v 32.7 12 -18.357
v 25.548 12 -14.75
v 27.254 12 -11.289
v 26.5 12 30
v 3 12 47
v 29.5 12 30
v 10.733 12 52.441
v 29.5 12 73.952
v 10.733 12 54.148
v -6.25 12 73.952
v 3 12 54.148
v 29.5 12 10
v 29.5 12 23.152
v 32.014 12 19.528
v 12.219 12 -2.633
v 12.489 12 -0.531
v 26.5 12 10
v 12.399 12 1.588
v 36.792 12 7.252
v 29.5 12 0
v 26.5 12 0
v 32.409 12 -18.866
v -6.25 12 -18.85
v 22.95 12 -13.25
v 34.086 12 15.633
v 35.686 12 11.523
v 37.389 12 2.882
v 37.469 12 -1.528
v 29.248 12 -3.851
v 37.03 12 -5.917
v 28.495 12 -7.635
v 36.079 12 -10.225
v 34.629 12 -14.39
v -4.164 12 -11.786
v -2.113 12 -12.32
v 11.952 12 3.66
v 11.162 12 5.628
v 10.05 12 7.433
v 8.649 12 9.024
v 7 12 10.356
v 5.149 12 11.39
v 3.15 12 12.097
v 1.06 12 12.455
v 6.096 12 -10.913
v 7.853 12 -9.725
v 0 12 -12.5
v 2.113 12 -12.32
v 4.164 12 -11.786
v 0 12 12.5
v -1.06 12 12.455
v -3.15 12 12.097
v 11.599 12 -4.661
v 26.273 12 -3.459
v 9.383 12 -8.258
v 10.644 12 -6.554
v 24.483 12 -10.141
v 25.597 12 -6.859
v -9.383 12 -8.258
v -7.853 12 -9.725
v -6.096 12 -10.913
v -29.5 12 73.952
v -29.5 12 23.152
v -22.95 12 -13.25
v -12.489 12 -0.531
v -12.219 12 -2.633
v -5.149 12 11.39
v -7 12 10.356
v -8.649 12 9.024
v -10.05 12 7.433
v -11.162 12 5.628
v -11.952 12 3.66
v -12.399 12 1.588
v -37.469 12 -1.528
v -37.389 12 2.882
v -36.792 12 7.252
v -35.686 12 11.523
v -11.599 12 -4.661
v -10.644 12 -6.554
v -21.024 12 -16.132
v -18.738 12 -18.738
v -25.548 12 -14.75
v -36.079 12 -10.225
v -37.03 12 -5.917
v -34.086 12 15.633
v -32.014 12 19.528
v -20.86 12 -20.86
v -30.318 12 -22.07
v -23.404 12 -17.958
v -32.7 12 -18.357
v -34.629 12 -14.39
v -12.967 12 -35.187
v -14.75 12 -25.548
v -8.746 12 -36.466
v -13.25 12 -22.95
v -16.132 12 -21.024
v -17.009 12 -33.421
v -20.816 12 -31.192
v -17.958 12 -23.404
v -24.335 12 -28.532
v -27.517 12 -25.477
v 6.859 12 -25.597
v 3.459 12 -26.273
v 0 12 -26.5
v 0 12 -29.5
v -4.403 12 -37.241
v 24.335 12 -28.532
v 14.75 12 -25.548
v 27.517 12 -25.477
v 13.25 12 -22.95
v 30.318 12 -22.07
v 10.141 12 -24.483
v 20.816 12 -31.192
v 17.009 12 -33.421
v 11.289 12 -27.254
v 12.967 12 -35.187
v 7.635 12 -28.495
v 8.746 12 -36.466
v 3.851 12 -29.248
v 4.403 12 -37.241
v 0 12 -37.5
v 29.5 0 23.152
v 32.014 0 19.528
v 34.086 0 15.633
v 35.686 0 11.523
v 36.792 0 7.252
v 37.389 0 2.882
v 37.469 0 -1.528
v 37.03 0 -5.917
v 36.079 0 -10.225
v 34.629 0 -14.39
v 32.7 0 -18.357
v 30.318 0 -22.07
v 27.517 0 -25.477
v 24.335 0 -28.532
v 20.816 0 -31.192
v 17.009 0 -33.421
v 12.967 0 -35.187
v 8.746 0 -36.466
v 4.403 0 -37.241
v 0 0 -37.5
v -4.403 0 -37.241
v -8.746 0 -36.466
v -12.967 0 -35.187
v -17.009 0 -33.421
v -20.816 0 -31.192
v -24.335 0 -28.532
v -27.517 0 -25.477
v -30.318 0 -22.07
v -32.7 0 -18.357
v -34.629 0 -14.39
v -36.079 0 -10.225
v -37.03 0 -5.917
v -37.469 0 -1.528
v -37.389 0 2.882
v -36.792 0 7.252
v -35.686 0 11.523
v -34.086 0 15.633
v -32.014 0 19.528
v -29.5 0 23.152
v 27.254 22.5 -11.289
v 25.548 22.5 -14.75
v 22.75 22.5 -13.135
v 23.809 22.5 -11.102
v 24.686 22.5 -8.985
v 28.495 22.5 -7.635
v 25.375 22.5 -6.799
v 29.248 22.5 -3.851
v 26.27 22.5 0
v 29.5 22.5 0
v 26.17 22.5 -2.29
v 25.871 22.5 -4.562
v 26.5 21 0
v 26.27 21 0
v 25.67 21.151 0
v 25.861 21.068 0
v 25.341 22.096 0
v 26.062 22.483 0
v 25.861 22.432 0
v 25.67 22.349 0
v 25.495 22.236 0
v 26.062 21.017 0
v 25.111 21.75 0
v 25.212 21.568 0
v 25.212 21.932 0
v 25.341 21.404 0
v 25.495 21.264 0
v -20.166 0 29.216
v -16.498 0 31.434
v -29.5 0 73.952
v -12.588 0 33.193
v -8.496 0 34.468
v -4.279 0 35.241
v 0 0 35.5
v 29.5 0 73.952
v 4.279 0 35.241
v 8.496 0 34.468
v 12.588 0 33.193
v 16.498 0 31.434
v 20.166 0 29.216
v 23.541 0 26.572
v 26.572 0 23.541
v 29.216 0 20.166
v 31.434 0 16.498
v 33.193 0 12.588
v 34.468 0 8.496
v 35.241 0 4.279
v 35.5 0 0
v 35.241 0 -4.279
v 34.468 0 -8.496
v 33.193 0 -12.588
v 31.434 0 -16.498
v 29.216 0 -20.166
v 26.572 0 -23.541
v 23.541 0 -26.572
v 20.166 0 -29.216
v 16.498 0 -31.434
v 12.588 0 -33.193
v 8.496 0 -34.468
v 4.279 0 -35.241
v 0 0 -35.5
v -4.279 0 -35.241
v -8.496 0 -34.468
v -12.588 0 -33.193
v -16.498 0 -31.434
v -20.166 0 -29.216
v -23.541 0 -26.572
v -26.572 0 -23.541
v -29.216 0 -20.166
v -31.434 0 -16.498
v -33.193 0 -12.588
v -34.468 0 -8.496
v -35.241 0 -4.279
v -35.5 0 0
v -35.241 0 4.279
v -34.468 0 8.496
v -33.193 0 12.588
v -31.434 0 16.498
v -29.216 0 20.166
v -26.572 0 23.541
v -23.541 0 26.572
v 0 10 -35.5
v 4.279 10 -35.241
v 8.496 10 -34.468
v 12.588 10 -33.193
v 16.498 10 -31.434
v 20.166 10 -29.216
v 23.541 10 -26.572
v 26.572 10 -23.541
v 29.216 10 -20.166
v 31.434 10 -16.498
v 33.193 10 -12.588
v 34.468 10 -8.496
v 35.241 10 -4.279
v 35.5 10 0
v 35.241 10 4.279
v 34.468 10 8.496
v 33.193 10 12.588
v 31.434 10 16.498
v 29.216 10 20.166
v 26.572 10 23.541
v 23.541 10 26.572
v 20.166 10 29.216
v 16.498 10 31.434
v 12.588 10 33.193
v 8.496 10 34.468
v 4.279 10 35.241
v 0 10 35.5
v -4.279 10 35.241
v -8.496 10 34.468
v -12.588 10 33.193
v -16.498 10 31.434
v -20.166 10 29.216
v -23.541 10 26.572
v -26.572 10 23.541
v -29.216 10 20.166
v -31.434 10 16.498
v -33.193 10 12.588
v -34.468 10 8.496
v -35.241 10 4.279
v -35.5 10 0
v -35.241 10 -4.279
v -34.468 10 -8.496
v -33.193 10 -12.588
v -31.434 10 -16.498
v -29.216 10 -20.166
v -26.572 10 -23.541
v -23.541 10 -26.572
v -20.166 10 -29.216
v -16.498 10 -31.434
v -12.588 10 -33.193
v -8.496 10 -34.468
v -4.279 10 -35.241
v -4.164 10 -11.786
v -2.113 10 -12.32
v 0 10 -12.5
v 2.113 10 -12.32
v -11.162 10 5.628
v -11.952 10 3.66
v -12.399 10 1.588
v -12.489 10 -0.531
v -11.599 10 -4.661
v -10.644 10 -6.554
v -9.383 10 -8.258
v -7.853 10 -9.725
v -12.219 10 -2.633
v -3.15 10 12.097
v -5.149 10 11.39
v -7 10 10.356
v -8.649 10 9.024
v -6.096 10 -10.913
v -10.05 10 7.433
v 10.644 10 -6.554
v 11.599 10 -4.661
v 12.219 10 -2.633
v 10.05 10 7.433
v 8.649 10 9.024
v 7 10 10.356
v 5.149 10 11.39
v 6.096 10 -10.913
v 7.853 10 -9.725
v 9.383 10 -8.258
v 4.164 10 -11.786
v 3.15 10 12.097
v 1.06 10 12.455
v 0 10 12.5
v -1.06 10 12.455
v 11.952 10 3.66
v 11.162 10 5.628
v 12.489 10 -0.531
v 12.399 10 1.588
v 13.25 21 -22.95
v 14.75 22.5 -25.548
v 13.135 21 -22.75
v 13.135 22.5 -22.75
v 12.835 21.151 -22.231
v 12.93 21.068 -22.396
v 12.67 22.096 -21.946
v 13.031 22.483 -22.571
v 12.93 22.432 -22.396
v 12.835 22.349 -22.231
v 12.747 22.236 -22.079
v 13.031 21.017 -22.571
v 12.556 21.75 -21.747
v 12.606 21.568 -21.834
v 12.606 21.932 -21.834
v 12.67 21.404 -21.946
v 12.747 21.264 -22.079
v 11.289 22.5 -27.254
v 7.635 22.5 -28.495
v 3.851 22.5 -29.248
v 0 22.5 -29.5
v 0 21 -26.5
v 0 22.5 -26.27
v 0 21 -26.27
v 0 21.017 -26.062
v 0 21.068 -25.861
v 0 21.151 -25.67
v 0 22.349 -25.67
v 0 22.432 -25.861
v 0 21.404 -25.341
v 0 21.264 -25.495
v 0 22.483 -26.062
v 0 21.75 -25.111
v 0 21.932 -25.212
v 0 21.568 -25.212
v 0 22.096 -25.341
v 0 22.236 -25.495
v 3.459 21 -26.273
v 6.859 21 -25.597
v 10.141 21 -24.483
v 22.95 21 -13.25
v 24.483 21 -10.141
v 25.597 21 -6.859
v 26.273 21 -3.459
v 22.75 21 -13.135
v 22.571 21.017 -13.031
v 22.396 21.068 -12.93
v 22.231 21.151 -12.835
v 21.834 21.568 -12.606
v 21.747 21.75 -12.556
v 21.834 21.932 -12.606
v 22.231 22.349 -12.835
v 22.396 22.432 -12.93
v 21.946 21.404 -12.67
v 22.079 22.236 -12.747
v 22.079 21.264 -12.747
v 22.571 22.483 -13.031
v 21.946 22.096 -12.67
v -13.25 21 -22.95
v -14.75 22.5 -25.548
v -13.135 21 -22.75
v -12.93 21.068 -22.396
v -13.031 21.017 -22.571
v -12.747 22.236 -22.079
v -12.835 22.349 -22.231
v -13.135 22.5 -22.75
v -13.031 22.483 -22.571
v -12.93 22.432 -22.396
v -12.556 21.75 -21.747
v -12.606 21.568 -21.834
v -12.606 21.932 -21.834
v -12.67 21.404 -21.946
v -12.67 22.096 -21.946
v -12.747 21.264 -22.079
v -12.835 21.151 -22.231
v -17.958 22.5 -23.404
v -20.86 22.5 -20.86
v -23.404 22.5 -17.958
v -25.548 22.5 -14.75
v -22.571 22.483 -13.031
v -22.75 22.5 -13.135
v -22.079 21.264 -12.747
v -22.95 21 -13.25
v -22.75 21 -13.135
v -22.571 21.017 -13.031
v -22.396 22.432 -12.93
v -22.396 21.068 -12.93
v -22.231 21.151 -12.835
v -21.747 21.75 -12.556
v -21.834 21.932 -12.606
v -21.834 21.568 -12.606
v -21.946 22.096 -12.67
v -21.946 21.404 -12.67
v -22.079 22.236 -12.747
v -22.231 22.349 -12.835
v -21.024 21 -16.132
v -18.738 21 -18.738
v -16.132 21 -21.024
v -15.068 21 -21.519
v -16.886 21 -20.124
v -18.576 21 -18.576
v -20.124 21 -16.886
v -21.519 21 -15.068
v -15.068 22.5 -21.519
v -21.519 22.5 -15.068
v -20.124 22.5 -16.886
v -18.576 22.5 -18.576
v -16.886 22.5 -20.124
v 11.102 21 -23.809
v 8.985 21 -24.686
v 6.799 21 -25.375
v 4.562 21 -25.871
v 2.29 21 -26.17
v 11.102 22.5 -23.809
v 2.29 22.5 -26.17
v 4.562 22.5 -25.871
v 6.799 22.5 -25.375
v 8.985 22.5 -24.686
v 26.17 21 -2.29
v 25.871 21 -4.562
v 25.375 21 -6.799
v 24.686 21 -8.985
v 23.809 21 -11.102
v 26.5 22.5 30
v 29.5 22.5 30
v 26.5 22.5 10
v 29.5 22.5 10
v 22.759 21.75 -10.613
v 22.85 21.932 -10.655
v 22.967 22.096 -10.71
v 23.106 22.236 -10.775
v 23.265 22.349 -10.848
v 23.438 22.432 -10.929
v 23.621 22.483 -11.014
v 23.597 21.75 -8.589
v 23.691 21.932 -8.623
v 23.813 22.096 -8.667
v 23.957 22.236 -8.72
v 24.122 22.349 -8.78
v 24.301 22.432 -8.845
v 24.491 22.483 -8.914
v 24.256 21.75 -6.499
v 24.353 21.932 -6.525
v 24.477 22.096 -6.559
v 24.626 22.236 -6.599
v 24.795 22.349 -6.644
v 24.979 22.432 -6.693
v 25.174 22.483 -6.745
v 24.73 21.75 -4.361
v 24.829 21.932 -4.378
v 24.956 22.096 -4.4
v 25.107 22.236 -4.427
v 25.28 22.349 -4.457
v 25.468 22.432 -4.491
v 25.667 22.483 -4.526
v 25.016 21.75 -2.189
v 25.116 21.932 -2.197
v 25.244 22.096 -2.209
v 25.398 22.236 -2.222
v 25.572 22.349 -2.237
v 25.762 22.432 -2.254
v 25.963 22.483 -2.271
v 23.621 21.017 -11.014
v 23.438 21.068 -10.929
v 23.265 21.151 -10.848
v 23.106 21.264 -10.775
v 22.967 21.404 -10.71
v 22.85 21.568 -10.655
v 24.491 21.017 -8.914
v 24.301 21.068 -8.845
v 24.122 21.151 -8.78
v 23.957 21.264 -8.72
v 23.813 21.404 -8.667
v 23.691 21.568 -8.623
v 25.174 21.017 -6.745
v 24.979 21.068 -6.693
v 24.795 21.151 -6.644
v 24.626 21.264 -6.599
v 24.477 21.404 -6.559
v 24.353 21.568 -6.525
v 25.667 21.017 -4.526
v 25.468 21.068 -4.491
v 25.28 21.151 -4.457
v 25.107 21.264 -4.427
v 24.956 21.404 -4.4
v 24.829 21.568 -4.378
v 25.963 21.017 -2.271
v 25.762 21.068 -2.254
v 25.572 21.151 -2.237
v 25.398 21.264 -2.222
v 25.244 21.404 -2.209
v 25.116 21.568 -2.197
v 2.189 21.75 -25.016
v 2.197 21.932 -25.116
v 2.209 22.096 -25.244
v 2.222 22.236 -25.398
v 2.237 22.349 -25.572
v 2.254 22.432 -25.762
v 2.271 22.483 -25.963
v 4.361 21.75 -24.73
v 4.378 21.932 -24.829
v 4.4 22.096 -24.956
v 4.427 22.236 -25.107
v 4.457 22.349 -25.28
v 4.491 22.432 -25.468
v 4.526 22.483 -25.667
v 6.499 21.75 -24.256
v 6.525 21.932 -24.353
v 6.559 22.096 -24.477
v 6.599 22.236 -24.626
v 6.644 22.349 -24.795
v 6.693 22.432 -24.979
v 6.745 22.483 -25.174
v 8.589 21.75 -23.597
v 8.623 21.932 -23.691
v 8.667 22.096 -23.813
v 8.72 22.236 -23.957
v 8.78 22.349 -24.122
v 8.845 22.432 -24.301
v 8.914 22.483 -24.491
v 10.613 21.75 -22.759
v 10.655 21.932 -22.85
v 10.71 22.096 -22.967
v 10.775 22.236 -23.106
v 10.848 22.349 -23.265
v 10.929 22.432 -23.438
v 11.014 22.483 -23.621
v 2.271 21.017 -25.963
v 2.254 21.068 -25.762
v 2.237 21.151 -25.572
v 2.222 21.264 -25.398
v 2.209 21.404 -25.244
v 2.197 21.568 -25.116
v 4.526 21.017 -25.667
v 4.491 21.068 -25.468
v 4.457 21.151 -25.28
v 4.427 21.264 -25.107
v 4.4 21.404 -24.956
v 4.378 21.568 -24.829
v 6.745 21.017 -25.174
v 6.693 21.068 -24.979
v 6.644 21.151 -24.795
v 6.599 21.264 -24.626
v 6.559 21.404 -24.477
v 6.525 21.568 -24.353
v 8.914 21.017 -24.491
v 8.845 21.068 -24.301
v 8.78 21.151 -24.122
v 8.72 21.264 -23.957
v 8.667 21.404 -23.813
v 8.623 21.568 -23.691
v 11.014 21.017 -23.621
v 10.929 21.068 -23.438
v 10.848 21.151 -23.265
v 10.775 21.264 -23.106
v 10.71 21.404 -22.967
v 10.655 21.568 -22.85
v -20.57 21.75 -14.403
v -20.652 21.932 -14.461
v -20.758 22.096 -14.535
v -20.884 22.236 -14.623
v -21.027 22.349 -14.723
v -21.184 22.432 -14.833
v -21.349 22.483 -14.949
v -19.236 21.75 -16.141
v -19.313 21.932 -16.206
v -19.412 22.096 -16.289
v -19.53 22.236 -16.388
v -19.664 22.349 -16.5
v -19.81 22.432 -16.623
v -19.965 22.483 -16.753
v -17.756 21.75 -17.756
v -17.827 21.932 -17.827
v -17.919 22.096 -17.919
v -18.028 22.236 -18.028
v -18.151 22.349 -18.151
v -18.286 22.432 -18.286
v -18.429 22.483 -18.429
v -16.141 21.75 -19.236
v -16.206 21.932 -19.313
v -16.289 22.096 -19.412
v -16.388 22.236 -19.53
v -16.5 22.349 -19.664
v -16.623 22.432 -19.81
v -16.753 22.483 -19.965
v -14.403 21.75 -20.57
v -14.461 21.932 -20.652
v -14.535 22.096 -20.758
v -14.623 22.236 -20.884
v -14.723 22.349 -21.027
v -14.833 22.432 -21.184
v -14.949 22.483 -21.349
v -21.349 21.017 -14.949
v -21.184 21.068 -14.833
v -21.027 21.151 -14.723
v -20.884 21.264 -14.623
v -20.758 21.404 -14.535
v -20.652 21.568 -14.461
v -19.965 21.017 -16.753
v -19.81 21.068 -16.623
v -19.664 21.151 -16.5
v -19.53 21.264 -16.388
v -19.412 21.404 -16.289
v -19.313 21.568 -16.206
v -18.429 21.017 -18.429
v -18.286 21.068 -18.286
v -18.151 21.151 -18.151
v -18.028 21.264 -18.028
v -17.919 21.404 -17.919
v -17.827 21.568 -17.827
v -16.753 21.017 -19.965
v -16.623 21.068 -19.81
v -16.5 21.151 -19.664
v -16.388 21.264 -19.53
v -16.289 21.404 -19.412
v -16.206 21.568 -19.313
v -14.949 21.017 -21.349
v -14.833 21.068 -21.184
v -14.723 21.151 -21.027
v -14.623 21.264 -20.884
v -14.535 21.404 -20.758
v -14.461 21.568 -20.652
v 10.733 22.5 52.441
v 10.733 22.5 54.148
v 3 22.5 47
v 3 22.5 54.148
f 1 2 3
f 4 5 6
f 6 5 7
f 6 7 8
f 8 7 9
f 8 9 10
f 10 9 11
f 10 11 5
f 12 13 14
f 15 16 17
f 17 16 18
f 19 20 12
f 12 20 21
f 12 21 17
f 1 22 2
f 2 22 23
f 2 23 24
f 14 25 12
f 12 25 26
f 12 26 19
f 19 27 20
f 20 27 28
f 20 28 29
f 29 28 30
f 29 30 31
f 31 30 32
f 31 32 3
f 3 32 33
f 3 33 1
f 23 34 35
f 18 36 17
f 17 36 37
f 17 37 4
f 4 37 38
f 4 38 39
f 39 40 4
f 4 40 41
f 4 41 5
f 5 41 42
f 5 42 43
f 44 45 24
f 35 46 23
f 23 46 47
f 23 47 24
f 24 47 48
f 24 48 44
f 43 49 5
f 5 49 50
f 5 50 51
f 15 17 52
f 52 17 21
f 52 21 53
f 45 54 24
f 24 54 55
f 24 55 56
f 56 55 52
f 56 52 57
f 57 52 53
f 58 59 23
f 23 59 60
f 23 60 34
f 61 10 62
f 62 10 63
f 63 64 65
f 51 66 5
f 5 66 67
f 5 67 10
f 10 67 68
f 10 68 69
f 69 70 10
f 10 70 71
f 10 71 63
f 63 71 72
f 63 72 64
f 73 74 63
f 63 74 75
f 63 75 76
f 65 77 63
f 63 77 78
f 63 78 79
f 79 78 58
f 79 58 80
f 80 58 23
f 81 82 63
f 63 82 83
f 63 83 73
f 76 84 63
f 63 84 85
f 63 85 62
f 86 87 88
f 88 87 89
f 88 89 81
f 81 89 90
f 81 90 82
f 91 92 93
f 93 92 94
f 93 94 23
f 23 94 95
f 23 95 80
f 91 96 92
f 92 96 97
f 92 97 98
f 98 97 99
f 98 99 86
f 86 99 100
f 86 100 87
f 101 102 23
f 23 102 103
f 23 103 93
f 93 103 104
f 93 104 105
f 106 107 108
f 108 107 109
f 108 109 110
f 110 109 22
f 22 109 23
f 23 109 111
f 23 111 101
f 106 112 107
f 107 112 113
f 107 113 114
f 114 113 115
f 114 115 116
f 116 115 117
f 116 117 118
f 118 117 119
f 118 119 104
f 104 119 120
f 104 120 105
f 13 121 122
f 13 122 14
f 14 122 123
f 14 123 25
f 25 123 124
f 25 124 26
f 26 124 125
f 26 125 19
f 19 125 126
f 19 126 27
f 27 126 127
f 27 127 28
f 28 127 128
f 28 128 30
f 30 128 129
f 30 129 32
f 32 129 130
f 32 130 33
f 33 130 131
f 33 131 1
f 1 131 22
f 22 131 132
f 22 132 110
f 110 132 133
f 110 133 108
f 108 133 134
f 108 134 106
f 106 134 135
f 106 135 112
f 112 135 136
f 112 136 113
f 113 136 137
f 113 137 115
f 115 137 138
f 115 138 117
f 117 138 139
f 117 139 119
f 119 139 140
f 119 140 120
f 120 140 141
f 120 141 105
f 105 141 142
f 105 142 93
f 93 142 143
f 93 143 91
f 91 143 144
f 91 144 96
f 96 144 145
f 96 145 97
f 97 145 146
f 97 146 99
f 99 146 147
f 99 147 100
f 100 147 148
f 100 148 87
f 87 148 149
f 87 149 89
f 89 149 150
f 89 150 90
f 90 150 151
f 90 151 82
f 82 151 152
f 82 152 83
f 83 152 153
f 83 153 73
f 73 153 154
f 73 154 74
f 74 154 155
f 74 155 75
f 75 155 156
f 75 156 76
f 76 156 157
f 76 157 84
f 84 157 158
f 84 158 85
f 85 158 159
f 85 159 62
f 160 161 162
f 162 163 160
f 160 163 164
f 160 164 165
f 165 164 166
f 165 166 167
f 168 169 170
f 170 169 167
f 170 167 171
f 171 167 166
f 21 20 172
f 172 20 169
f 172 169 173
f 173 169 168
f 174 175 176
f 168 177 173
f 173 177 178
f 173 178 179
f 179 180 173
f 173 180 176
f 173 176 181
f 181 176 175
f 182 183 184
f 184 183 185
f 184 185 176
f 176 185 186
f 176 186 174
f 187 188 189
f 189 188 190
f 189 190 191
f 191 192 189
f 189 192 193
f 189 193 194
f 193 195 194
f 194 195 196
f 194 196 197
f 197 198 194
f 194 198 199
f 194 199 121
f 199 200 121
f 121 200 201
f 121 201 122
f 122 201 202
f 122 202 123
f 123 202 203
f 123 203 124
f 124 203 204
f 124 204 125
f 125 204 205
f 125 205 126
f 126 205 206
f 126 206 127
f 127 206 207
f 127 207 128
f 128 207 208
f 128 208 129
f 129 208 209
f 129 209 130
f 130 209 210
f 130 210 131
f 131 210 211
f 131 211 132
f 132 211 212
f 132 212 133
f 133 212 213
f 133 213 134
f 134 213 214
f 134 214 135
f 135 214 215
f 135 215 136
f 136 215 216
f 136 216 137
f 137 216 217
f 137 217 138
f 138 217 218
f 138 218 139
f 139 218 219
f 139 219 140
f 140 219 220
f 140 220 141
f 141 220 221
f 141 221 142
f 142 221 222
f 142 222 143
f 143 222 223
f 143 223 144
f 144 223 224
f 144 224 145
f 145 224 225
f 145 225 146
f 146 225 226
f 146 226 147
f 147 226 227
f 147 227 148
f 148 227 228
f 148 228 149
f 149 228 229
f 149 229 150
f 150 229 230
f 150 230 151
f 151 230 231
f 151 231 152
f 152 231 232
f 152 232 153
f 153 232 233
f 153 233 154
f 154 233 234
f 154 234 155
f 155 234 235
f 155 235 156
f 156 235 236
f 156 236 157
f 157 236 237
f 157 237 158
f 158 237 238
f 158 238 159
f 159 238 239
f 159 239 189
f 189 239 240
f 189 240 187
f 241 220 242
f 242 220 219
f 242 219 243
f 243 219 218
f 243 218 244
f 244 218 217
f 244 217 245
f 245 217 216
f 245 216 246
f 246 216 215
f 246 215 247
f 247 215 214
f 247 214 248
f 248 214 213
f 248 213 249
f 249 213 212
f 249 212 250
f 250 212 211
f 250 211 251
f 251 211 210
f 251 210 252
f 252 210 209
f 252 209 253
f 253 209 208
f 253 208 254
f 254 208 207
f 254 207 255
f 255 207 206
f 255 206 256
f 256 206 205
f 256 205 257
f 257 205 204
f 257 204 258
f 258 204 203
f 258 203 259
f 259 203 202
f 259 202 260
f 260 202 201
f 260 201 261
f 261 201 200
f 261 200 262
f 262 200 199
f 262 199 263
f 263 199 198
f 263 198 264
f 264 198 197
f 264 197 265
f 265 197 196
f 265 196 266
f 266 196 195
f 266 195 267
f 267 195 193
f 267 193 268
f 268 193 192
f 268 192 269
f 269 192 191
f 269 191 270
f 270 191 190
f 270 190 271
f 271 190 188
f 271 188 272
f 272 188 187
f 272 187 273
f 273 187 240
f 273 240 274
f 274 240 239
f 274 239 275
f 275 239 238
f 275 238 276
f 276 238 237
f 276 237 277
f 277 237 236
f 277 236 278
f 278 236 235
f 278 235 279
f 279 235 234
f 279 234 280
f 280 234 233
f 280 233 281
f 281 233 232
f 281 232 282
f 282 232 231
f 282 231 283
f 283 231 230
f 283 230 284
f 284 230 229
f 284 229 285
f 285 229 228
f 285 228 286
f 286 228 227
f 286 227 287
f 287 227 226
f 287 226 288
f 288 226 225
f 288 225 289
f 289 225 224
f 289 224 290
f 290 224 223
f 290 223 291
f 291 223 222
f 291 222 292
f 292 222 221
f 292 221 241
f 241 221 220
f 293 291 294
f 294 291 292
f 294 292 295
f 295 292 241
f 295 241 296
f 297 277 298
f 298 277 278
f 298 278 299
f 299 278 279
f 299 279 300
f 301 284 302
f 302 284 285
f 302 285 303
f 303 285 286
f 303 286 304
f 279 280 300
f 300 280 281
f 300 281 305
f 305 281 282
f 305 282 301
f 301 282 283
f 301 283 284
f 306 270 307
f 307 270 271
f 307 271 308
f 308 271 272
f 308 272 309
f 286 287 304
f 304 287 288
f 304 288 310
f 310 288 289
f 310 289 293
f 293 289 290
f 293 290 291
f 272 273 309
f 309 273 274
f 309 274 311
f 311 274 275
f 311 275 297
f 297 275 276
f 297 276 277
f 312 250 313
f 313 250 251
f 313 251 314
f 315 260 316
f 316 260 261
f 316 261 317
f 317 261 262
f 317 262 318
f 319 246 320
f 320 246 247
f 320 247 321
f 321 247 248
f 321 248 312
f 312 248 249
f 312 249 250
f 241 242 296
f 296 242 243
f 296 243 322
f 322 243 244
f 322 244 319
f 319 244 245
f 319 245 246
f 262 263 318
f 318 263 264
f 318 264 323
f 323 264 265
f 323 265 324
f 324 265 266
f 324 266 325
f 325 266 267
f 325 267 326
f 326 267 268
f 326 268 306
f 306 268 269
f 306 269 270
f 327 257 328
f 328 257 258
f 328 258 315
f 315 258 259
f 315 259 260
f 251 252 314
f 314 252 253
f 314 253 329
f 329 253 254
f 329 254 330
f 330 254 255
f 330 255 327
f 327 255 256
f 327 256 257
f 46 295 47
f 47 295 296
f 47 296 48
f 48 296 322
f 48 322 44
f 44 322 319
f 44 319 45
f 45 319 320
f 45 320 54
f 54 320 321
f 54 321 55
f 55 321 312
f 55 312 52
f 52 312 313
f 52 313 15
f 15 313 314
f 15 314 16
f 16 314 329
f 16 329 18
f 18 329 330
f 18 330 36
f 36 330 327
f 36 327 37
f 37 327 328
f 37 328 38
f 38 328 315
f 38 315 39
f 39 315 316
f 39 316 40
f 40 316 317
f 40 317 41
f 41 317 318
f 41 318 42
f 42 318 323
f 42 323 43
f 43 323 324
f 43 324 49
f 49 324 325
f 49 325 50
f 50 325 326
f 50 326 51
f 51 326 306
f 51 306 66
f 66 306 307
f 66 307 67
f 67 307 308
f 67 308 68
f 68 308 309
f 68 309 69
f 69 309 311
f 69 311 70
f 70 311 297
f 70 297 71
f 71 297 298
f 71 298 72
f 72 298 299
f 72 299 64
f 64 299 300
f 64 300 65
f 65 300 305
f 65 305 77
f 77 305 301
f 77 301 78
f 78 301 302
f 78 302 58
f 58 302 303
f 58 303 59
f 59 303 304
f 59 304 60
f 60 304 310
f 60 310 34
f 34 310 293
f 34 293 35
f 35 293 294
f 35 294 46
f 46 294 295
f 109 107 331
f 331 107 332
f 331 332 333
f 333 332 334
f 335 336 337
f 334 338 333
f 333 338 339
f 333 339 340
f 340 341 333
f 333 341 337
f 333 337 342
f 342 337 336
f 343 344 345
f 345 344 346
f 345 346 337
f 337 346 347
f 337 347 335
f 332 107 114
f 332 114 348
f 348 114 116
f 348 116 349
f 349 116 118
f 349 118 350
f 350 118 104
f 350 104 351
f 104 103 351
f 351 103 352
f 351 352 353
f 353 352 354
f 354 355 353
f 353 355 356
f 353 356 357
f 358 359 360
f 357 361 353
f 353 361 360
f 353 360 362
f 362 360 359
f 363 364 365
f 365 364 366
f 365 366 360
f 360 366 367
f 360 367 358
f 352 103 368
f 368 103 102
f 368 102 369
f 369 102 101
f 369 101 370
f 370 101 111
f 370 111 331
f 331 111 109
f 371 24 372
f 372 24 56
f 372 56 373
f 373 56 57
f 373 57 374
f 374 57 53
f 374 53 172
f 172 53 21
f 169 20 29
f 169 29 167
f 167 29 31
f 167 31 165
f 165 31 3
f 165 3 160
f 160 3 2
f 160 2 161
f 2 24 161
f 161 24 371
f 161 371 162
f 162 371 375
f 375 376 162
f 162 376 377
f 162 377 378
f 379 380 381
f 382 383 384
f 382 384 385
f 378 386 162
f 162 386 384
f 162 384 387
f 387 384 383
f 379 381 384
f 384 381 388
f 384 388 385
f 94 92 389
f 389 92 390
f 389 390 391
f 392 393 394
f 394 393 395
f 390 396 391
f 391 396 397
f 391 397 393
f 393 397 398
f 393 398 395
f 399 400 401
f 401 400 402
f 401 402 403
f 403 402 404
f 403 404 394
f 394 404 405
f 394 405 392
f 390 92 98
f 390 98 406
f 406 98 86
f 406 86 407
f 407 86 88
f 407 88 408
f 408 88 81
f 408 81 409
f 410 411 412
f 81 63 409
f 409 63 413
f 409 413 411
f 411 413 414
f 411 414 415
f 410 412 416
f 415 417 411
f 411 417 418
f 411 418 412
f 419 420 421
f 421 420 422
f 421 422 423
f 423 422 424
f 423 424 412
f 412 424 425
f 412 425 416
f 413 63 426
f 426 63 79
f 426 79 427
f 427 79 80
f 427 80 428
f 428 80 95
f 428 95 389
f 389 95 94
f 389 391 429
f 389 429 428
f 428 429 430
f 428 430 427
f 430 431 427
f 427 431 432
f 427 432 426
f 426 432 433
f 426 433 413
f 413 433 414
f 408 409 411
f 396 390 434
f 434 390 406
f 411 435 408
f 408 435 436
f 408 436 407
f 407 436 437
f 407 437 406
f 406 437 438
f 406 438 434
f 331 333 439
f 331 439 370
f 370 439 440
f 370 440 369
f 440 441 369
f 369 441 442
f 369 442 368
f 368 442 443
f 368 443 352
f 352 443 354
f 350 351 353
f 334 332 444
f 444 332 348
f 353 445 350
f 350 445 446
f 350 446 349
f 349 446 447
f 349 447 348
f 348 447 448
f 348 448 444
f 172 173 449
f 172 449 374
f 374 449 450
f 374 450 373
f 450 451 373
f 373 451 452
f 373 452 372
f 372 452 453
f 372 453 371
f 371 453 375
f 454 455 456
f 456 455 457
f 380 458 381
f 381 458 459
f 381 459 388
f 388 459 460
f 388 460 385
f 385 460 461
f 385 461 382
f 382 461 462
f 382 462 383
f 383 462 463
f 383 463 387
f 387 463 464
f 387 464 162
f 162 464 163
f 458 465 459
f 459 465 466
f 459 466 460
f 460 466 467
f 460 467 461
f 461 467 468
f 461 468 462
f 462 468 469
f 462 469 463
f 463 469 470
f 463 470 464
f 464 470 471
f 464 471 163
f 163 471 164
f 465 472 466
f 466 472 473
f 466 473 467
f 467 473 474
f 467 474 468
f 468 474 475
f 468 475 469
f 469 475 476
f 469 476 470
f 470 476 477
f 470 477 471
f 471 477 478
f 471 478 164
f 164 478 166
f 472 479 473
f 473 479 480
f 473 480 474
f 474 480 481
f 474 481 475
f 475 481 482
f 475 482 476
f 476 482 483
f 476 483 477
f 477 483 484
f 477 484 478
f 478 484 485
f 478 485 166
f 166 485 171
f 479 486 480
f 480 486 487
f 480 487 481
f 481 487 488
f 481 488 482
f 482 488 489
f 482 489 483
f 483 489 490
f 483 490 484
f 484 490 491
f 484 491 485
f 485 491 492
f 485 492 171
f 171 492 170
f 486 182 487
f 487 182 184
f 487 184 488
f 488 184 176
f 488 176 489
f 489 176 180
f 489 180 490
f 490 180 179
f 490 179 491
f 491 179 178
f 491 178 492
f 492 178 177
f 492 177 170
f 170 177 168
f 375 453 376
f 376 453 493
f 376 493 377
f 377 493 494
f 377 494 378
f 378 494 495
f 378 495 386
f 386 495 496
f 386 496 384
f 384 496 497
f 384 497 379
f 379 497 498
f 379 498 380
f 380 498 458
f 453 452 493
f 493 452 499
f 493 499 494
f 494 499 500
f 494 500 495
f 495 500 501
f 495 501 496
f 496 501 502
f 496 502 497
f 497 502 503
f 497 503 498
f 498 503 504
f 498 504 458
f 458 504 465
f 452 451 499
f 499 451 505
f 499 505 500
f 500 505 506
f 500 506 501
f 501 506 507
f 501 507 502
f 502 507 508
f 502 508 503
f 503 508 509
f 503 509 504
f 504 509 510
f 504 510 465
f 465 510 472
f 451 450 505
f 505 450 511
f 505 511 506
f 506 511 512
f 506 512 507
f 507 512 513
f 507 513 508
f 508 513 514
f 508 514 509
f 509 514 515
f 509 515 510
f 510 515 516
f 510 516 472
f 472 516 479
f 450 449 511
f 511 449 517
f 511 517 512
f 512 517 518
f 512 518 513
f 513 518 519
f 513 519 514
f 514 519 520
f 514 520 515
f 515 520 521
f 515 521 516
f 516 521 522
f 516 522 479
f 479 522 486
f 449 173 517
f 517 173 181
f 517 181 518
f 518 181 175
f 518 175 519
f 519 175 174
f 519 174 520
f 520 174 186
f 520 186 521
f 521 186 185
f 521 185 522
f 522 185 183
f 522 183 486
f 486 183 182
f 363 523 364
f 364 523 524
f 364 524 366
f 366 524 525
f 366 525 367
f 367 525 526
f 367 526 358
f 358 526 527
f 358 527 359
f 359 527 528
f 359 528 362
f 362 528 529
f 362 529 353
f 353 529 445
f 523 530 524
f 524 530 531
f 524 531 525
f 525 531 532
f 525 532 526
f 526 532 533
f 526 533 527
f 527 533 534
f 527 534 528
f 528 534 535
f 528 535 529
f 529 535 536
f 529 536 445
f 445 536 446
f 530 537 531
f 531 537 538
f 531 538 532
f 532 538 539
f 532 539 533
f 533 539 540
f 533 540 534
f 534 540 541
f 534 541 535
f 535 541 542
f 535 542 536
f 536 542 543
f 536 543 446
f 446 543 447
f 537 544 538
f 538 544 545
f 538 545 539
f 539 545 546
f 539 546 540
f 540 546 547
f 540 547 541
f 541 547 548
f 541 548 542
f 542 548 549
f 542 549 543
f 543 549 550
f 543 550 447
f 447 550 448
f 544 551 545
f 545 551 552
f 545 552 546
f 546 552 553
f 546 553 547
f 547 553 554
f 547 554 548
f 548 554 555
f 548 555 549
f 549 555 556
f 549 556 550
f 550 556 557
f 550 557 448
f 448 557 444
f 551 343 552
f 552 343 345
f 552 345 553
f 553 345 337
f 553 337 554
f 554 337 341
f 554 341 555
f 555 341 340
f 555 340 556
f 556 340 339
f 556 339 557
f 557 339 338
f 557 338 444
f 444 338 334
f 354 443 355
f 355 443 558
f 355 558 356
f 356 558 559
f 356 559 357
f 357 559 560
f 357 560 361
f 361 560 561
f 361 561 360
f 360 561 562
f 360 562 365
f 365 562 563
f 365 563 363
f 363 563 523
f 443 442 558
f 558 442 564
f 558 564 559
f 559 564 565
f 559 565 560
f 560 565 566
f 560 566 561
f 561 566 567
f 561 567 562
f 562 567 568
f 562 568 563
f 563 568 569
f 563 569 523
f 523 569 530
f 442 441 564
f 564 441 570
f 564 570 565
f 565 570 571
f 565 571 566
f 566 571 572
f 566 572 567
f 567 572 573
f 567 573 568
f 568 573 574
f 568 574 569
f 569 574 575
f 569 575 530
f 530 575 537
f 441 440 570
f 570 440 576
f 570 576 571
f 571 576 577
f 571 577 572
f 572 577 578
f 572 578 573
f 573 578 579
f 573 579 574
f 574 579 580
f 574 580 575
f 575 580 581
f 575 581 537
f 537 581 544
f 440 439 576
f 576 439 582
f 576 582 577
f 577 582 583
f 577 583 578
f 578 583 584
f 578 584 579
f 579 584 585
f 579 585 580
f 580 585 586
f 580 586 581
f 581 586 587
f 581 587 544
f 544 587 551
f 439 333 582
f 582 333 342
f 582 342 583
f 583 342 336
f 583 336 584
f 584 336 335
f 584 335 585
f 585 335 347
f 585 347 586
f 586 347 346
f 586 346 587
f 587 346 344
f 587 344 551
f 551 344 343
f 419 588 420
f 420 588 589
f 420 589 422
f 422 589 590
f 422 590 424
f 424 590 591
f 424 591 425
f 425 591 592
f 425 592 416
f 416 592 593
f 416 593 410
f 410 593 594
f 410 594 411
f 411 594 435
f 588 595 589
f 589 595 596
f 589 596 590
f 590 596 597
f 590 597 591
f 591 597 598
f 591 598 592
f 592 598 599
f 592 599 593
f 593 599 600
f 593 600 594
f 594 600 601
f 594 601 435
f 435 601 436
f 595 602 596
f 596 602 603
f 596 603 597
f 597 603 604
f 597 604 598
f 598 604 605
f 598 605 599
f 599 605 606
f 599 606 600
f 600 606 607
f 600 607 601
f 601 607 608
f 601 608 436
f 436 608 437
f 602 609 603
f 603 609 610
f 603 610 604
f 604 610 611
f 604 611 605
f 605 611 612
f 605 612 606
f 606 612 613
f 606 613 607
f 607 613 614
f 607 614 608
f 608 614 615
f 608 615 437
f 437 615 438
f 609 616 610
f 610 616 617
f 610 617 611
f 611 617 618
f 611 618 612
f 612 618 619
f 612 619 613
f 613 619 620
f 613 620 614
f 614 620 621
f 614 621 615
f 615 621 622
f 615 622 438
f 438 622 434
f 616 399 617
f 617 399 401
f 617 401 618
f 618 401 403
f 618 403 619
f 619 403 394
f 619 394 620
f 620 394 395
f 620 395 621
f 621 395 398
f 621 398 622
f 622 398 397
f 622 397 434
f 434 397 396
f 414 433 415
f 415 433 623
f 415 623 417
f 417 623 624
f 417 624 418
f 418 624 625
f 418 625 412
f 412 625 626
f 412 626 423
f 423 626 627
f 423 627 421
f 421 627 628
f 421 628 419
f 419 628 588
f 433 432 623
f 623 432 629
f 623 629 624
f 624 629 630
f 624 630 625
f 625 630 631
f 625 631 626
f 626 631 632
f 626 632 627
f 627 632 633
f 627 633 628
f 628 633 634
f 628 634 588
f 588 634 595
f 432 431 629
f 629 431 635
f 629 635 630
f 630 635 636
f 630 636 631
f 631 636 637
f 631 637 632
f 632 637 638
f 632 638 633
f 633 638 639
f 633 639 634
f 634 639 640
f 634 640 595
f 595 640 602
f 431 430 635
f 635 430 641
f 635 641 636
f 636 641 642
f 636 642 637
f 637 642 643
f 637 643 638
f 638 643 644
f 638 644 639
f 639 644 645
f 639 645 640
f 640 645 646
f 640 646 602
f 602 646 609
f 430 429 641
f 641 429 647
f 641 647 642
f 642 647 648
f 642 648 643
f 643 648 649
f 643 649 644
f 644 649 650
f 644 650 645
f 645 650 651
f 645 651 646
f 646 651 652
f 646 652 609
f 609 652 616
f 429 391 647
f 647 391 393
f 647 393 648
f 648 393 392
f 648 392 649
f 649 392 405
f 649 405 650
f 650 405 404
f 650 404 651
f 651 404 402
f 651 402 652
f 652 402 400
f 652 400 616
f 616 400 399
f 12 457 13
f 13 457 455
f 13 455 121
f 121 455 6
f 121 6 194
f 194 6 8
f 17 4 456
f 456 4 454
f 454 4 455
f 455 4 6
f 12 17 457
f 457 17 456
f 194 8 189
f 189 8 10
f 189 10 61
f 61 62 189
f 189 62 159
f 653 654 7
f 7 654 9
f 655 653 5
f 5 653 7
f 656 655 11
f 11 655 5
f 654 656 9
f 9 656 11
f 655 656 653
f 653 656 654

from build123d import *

# Parameters (mm, degrees)
SKETCH1_R           = 37.5
SKETCH1_R_2         = 35.5
BOSS_EXTRUDE1_DEPTH = 10
SKETCH2_R           = 37.5
SKETCH2_R_2         = 12.5
BOSS_EXTRUDE2_DEPTH = 2
BOSS_EXTRUDE3_DEPTH = 9
BOSS_EXTRUDE4_DEPTH = 1.5
FILLET1_R           = 1.27
SKETCH6_W           = 3
SKETCH6_H           = 10.5
BOSS_EXTRUDE5_DEPTH = 30
SKETCH7_W           = 3
SKETCH7_H           = 10
CUT_EXTRUDE1_DEPTH  = 10.5
BOSS_EXTRUDE6_DEPTH = 10.5
BOSS_EXTRUDE8_START = -12
BOSS_EXTRUDE8_DEPTH = 12


with BuildPart() as part:
    # Sketch1 → Boss-Extrude1 (new body)
    with BuildSketch(Plane(origin=(0, 0, 0), x_dir=(1, 0, 0), z_dir=(0, 1, 0))):
        with Locations(Location((0, 0, 0), (0, 0, 270))):
            Circle(SKETCH1_R)
        with Locations(Location((0, 0, 0), (0, 0, 270))):
            Circle(SKETCH1_R_2, mode=Mode.SUBTRACT)
    extrude(amount=BOSS_EXTRUDE1_DEPTH)

    # Sketch2 → Boss-Extrude2 (add)
    with BuildSketch(Plane(origin=(0, 10, 0), x_dir=(1, 0, 0), z_dir=(0, 1, 0))):
        with Locations(Location((0, 0, 0), (0, 0, 270))):
            Circle(SKETCH2_R)
        with Locations(Location((0, 0, 0), (0, 0, 270))):
            Circle(SKETCH2_R_2, mode=Mode.SUBTRACT)
    extrude(amount=BOSS_EXTRUDE2_DEPTH)

    # Sketch4 → Boss-Extrude3 (add)
    with BuildSketch(Plane(origin=(0, 12, 0), x_dir=(1, 0, 0), z_dir=(0, 1, 0))):
        with BuildLine():
            Line((13.25, 22.9496732), (14.75, 25.547749412))
            ThreePointArc((14.75, 25.547749412), (7.635161831, 28.494811876), (0, 29.5))
            Line((0, 29.5), (0, 26.5))
            ThreePointArc((0, 26.5), (6.858704695, 25.597034397), (13.25, 22.9496732))
        make_face()
        with BuildLine():
            ThreePointArc((26.5, 0), (25.597034397, 6.858704695), (22.9496732, 13.25))
            Line((22.9496732, 13.25), (25.547749412, 14.75))
            ThreePointArc((25.547749412, 14.75), (28.494811876, 7.635161831), (29.5, 0))
            Line((29.5, 0), (26.5, 0))
        make_face()
        with BuildLine():
            Line((-13.25, 22.9496732), (-14.75, 25.547749412))
            ThreePointArc((-14.75, 25.547749412), (-20.859650045, 20.859650045), (-25.547749412, 14.75))
            Line((-25.547749412, 14.75), (-22.9496732, 13.25))
            ThreePointArc((-22.9496732, 13.25), (-18.738329701, 18.738329701), (-13.25, 22.9496732))
        make_face()
    extrude(amount=BOSS_EXTRUDE3_DEPTH)

    # Sketch5 → Boss-Extrude4 (add)
    with BuildSketch(Plane(origin=(0, 21, 0), x_dir=(1, 0, 0), z_dir=(0, 1, 0))):
        with BuildLine():
            Line((-12.5, 21.650635095), (-14.75, 25.547749412))
            ThreePointArc((-14.75, 25.547749412), (-20.859650045, 20.859650045), (-25.547749412, 14.75))
            Line((-25.547749412, 14.75), (-21.650635095, 12.5))
            ThreePointArc((-21.650635095, 12.5), (-17.67766953, 17.67766953), (-12.5, 21.650635095))
        make_face()
        with BuildLine():
            ThreePointArc((0, 26.5), (6.858704695, 25.597034397), (13.25, 22.9496732))
            Line((13.25, 22.9496732), (14.75, 25.547749412))
            ThreePointArc((14.75, 25.547749412), (7.635161831, 28.494811876), (0, 29.5))
            Line((0, 29.5), (0, 26.5))
        make_face()
        with BuildLine():
            Line((0, 26.5), (0, 25))
            ThreePointArc((0, 25), (6.470476128, 24.148145657), (12.5, 21.650635095))
            Line((12.5, 21.650635095), (13.25, 22.9496732))
            ThreePointArc((13.25, 22.9496732), (6.858704695, 25.597034397), (0, 26.5))
        make_face()
        with BuildLine():
            Line((25, 0), (29.5, 0))
            ThreePointArc((29.5, 0), (28.494811876, 7.635161831), (25.547749412, 14.75))
            Line((25.547749412, 14.75), (21.650635095, 12.5))
            ThreePointArc((21.650635095, 12.5), (24.148145657, 6.470476128), (25, 0))
        make_face()
    extrude(amount=BOSS_EXTRUDE4_DEPTH)

    # Fillet1
    # the kernel refuses this fillet: 1.27 mm, written as the material it takes off along each edge
    with BuildSketch(Plane(origin=(0, 21, 0), x_dir=(0.795717852622937, 0, -0.605667482218702), z_dir=(-0.605667482218702, 0, -0.795717852622937))) as fillet1_piece_1:
        with BuildLine():
            CenterArc((25 + FILLET1_R, -FILLET1_R), FILLET1_R, 90, 90)
            Line((25 + FILLET1_R, 0), (25, 0))
            Line((25, 0), (25, -FILLET1_R))
        make_face()
    revolve(axis=Axis((0, 21, 0), (0, -1, 0)), revolution_arc=44.553777402, mode=Mode.SUBTRACT)
    with BuildSketch(Plane(origin=(0, 22.5, 0), x_dir=(0.795717852622937, 0, -0.605667482218702), z_dir=(-0.605667482218702, 0, -0.795717852622937))) as fillet1_piece_2:
        with BuildLine():
            CenterArc((25 + FILLET1_R, FILLET1_R), FILLET1_R, 180, 90)
            Line((25, FILLET1_R), (25, 0))
            Line((25, 0), (25 + FILLET1_R, 0))
        make_face()
    revolve(axis=Axis((0, 22.5, 0), (0, -1, 0)), revolution_arc=44.553777402, mode=Mode.SUBTRACT)
    with BuildSketch(Plane(origin=(0, 21, 0), x_dir=(-0.12666449953608933, 0, -0.9919456157256162), z_dir=(-0.9919456157256162, 0, 0.12666449953608933))) as fillet1_piece_3:
        with BuildLine():
            CenterArc((25 + FILLET1_R, -FILLET1_R), FILLET1_R, 90, 90)
            Line((25 + FILLET1_R, 0), (25, 0))
            Line((25, 0), (25, -FILLET1_R))
        make_face()
    revolve(axis=Axis((0, 21, 0), (0, -1, 0)), revolution_arc=44.553777402, mode=Mode.SUBTRACT)
    with BuildSketch(Plane(origin=(0, 22.5, 0), x_dir=(-0.12666449953608933, 0, -0.9919456157256162), z_dir=(-0.9919456157256162, 0, 0.12666449953608933))) as fillet1_piece_4:
        with BuildLine():
            CenterArc((25 + FILLET1_R, FILLET1_R), FILLET1_R, 180, 90)
            Line((25, FILLET1_R), (25, 0))
            Line((25, 0), (25 + FILLET1_R, 0))
        make_face()
    revolve(axis=Axis((0, 22.5, 0), (0, -1, 0)), revolution_arc=44.553777402, mode=Mode.SUBTRACT)
    with BuildSketch(Plane(origin=(0, 21, 0), x_dir=(-0.9223823521590265, 0, -0.386278133506909), z_dir=(-0.386278133506909, 0, 0.9223823521590265))) as fillet1_piece_5:
        with BuildLine():
            CenterArc((25 + FILLET1_R, -FILLET1_R), FILLET1_R, 90, 90)
            Line((25 + FILLET1_R, 0), (25, 0))
            Line((25, 0), (25, -FILLET1_R))
        make_face()
    revolve(axis=Axis((0, 21, 0), (0, -1, 0)), revolution_arc=44.553777402, mode=Mode.SUBTRACT)
    with BuildSketch(Plane(origin=(0, 22.5, 0), x_dir=(-0.9223823521590265, 0, -0.386278133506909), z_dir=(-0.386278133506909, 0, 0.9223823521590265))) as fillet1_piece_6:
        with BuildLine():
            CenterArc((25 + FILLET1_R, FILLET1_R), FILLET1_R, 180, 90)
            Line((25, FILLET1_R), (25, 0))
            Line((25, 0), (25 + FILLET1_R, 0))
        make_face()
    revolve(axis=Axis((0, 22.5, 0), (0, -1, 0)), revolution_arc=44.553777402, mode=Mode.SUBTRACT)

    # Sketch6 → Boss-Extrude5 (add)
    with BuildSketch(Plane.XY):
        with Locations((28, 17.25)):
            Rectangle(SKETCH6_W, SKETCH6_H)
    extrude(amount=BOSS_EXTRUDE5_DEPTH)

    # Sketch7 → Cut-Extrude1 (cut)
    with BuildSketch(Plane(origin=(0, 22.5, 0), x_dir=(1, 0, 0), z_dir=(0, 1, 0))):
        with Locations((28, -5)):
            Rectangle(SKETCH7_W, SKETCH7_H)
    extrude(amount=-CUT_EXTRUDE1_DEPTH, mode=Mode.SUBTRACT)



with BuildPart() as body_2:
    # Sketch8 → Boss-Extrude6 (new body)
    with BuildSketch(Plane(origin=(0, 12, 0), x_dir=(1, 0, 0), z_dir=(0, 1, 0))):
        Polygon((10.733196366, -52.441497251), (3, -47), (3, -54.148297887), (10.733196366, -54.148297887), align=None)
    extrude(amount=BOSS_EXTRUDE6_DEPTH)


with BuildPart() as part_1:
    add(part.part)

    add(body_2.part)  # Boss-Extrude8 merges body 2
    # Sketch9 → Boss-Extrude8 (add)
    with BuildSketch(Plane(origin=(0, 12, 0), x_dir=(1, 0, 0), z_dir=(0, 1, 0)).offset(BOSS_EXTRUDE8_START)):
        with BuildLine():
            Line((-26.911893282, -23.151673806), (-29.5, -23.151673806))
            Line((-29.5, -23.151673806), (-29.5, -73.951673806))
            Line((-29.5, -73.951673806), (29.5, -73.951673806))
            Line((29.5, -73.951673806), (29.5, -23.151673806))
            Line((29.5, -23.151673806), (26.911893282, -23.151673806))
            ThreePointArc((26.911893282, -23.151673806), (0, -35.5), (-26.911893282, -23.151673806))
        make_face()
    extrude(amount=BOSS_EXTRUDE8_DEPTH)


solid = part_1.part
